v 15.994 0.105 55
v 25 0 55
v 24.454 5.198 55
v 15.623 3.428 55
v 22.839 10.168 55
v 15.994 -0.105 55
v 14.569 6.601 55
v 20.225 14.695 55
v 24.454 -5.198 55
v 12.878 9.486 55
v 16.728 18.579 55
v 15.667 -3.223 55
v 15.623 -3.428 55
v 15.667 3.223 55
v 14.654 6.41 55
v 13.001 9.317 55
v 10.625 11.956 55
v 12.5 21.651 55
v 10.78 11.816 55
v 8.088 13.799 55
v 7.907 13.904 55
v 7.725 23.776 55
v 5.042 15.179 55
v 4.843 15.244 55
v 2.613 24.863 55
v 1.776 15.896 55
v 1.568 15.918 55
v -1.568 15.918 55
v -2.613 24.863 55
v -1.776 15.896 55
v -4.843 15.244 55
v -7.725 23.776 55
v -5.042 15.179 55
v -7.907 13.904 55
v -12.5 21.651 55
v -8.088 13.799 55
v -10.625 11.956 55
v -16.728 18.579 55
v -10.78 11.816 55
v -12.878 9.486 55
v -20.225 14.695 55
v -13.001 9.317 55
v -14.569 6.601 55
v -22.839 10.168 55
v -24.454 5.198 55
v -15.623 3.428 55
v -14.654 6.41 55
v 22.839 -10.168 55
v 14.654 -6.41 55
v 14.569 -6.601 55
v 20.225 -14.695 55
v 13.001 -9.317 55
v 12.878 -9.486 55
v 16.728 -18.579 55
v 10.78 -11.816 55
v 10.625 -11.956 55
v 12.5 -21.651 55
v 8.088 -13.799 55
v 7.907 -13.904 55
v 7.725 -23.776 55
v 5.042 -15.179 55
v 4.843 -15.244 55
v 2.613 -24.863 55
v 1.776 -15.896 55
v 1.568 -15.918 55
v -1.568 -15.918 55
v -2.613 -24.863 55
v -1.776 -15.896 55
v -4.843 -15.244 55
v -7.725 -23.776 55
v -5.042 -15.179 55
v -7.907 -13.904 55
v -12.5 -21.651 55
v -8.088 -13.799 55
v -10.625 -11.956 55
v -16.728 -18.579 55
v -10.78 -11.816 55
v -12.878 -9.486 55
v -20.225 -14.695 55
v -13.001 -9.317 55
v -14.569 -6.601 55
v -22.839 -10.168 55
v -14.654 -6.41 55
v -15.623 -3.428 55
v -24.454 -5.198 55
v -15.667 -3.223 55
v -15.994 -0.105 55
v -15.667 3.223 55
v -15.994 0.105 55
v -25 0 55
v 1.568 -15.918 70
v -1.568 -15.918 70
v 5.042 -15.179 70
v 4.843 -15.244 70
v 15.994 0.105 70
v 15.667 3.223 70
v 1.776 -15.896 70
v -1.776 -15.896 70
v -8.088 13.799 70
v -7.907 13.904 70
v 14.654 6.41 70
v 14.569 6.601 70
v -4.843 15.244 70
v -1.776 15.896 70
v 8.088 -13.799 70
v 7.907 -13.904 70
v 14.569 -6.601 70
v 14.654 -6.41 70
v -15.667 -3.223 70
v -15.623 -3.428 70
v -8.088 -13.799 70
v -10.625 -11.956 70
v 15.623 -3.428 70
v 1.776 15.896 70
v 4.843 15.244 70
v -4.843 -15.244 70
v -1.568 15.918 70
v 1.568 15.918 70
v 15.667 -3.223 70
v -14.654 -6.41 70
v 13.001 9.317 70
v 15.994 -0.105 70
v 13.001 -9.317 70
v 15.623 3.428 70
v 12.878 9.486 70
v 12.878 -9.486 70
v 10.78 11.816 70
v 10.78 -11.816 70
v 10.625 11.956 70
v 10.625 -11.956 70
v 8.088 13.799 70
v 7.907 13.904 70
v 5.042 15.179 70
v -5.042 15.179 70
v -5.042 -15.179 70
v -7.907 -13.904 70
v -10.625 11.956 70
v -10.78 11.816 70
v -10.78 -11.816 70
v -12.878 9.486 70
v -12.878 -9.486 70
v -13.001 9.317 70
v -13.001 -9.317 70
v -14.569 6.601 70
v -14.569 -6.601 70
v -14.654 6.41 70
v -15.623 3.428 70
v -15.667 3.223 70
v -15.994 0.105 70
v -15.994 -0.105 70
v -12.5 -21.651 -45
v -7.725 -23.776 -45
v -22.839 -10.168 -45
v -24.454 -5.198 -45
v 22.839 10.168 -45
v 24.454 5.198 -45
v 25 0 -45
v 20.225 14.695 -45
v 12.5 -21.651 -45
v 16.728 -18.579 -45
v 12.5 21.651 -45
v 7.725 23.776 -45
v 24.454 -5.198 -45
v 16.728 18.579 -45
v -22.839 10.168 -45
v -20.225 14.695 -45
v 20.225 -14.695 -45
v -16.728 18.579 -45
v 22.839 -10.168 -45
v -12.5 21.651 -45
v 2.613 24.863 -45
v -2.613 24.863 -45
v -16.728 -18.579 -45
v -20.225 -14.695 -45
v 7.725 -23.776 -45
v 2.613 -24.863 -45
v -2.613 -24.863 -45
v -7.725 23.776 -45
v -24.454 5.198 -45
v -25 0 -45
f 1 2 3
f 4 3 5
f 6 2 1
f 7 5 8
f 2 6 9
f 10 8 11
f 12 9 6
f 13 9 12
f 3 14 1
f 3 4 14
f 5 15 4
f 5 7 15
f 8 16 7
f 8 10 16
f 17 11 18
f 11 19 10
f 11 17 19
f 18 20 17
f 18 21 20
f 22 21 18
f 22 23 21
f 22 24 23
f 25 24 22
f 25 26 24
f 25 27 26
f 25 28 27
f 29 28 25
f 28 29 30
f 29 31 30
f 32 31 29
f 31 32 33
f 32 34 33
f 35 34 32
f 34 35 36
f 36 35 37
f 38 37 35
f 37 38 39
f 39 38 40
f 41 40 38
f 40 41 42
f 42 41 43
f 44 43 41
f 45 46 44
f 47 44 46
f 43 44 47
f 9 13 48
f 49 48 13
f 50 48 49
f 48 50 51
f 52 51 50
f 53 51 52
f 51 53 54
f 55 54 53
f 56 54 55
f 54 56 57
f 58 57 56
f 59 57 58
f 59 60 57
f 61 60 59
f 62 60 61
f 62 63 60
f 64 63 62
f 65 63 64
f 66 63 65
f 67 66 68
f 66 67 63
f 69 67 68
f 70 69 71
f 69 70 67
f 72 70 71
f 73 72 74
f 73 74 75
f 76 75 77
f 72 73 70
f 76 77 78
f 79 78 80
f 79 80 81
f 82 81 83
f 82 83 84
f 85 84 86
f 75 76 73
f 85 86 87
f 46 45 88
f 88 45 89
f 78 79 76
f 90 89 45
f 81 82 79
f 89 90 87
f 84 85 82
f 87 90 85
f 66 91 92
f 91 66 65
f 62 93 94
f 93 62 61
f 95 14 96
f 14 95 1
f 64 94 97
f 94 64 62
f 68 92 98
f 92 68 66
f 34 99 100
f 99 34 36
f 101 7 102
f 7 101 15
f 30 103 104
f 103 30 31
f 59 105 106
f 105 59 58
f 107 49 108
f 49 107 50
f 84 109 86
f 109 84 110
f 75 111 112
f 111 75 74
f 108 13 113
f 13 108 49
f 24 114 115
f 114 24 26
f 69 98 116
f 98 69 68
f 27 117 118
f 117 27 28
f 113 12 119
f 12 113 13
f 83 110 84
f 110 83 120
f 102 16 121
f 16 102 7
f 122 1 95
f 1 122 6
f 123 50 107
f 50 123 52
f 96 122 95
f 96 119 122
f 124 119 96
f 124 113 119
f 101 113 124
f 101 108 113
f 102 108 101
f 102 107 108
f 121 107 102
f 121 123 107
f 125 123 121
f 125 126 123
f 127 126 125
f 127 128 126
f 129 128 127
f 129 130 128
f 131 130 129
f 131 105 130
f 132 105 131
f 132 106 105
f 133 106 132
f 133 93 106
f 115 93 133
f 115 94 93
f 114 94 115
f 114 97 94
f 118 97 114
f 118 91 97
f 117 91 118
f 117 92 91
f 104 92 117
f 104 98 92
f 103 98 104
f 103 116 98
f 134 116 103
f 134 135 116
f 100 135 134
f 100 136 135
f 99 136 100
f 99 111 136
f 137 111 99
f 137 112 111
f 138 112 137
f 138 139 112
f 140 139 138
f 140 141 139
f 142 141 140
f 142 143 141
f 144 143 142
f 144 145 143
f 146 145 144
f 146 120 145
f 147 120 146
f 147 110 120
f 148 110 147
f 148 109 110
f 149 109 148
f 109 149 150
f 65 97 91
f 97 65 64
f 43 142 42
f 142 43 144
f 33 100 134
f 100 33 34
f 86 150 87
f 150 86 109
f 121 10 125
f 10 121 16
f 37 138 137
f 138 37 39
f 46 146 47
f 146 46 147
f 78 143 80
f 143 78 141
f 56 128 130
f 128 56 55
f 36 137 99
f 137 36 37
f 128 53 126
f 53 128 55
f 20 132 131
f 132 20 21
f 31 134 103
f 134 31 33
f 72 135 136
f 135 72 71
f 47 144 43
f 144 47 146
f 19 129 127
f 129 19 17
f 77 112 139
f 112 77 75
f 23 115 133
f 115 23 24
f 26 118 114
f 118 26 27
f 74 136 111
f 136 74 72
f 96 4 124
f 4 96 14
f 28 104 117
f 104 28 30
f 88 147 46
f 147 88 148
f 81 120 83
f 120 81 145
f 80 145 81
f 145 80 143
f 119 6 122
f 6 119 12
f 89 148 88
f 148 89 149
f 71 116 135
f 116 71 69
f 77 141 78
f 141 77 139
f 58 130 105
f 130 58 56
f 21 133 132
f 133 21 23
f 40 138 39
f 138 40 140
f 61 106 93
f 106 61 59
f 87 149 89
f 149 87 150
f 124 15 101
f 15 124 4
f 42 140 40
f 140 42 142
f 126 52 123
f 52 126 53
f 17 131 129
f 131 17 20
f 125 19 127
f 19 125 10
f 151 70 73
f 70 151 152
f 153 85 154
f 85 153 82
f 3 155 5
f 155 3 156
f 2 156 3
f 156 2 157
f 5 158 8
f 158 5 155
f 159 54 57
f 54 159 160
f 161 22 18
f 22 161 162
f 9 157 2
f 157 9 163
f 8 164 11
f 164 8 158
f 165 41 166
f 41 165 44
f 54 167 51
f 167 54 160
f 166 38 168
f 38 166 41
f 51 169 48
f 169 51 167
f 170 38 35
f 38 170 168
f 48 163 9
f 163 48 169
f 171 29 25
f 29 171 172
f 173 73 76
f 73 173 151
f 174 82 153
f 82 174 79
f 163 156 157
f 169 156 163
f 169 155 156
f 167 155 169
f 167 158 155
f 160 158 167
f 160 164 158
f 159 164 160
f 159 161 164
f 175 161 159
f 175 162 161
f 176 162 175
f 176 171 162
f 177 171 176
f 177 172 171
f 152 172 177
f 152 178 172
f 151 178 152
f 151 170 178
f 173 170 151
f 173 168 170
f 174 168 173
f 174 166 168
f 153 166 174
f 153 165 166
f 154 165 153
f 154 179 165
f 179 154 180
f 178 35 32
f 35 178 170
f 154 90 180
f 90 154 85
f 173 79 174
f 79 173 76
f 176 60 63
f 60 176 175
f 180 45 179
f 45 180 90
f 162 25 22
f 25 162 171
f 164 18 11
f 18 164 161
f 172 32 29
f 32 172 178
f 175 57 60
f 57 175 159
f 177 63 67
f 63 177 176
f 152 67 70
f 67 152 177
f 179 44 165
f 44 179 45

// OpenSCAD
// Hammer parameters
handle_length = 70;
handle_radius = 15;
handle_taper_start = 30;
handle_taper_end = 10;
head_radius = 10;
head_height = 15;
shaft_diameter = 25;
shaft_length = 100;

// Handle
module handle() {
    linear_extrude(height = handle_length) {
        offset() {
            circle(r = handle_radius);
        }
    }
}

// Head
module head() {
    difference() {
        cylinder(h = head_height, r = head_radius);
        translate([0, 0, head_height - 5]) cylinder(h = 5, r = handle_radius);
    }
}

// Shaft
module shaft() {
    cylinder(h = shaft_length, r = shaft_diameter);
}

// Assembly
union() {
    // Handle
    translate([0, 0, 0]) handle();

    // Head
    translate([0, 0, handle_length - head_height]) head();

    // Shaft
    translate([0, 0, handle_length - head_height - shaft_length]) shaft();
}
